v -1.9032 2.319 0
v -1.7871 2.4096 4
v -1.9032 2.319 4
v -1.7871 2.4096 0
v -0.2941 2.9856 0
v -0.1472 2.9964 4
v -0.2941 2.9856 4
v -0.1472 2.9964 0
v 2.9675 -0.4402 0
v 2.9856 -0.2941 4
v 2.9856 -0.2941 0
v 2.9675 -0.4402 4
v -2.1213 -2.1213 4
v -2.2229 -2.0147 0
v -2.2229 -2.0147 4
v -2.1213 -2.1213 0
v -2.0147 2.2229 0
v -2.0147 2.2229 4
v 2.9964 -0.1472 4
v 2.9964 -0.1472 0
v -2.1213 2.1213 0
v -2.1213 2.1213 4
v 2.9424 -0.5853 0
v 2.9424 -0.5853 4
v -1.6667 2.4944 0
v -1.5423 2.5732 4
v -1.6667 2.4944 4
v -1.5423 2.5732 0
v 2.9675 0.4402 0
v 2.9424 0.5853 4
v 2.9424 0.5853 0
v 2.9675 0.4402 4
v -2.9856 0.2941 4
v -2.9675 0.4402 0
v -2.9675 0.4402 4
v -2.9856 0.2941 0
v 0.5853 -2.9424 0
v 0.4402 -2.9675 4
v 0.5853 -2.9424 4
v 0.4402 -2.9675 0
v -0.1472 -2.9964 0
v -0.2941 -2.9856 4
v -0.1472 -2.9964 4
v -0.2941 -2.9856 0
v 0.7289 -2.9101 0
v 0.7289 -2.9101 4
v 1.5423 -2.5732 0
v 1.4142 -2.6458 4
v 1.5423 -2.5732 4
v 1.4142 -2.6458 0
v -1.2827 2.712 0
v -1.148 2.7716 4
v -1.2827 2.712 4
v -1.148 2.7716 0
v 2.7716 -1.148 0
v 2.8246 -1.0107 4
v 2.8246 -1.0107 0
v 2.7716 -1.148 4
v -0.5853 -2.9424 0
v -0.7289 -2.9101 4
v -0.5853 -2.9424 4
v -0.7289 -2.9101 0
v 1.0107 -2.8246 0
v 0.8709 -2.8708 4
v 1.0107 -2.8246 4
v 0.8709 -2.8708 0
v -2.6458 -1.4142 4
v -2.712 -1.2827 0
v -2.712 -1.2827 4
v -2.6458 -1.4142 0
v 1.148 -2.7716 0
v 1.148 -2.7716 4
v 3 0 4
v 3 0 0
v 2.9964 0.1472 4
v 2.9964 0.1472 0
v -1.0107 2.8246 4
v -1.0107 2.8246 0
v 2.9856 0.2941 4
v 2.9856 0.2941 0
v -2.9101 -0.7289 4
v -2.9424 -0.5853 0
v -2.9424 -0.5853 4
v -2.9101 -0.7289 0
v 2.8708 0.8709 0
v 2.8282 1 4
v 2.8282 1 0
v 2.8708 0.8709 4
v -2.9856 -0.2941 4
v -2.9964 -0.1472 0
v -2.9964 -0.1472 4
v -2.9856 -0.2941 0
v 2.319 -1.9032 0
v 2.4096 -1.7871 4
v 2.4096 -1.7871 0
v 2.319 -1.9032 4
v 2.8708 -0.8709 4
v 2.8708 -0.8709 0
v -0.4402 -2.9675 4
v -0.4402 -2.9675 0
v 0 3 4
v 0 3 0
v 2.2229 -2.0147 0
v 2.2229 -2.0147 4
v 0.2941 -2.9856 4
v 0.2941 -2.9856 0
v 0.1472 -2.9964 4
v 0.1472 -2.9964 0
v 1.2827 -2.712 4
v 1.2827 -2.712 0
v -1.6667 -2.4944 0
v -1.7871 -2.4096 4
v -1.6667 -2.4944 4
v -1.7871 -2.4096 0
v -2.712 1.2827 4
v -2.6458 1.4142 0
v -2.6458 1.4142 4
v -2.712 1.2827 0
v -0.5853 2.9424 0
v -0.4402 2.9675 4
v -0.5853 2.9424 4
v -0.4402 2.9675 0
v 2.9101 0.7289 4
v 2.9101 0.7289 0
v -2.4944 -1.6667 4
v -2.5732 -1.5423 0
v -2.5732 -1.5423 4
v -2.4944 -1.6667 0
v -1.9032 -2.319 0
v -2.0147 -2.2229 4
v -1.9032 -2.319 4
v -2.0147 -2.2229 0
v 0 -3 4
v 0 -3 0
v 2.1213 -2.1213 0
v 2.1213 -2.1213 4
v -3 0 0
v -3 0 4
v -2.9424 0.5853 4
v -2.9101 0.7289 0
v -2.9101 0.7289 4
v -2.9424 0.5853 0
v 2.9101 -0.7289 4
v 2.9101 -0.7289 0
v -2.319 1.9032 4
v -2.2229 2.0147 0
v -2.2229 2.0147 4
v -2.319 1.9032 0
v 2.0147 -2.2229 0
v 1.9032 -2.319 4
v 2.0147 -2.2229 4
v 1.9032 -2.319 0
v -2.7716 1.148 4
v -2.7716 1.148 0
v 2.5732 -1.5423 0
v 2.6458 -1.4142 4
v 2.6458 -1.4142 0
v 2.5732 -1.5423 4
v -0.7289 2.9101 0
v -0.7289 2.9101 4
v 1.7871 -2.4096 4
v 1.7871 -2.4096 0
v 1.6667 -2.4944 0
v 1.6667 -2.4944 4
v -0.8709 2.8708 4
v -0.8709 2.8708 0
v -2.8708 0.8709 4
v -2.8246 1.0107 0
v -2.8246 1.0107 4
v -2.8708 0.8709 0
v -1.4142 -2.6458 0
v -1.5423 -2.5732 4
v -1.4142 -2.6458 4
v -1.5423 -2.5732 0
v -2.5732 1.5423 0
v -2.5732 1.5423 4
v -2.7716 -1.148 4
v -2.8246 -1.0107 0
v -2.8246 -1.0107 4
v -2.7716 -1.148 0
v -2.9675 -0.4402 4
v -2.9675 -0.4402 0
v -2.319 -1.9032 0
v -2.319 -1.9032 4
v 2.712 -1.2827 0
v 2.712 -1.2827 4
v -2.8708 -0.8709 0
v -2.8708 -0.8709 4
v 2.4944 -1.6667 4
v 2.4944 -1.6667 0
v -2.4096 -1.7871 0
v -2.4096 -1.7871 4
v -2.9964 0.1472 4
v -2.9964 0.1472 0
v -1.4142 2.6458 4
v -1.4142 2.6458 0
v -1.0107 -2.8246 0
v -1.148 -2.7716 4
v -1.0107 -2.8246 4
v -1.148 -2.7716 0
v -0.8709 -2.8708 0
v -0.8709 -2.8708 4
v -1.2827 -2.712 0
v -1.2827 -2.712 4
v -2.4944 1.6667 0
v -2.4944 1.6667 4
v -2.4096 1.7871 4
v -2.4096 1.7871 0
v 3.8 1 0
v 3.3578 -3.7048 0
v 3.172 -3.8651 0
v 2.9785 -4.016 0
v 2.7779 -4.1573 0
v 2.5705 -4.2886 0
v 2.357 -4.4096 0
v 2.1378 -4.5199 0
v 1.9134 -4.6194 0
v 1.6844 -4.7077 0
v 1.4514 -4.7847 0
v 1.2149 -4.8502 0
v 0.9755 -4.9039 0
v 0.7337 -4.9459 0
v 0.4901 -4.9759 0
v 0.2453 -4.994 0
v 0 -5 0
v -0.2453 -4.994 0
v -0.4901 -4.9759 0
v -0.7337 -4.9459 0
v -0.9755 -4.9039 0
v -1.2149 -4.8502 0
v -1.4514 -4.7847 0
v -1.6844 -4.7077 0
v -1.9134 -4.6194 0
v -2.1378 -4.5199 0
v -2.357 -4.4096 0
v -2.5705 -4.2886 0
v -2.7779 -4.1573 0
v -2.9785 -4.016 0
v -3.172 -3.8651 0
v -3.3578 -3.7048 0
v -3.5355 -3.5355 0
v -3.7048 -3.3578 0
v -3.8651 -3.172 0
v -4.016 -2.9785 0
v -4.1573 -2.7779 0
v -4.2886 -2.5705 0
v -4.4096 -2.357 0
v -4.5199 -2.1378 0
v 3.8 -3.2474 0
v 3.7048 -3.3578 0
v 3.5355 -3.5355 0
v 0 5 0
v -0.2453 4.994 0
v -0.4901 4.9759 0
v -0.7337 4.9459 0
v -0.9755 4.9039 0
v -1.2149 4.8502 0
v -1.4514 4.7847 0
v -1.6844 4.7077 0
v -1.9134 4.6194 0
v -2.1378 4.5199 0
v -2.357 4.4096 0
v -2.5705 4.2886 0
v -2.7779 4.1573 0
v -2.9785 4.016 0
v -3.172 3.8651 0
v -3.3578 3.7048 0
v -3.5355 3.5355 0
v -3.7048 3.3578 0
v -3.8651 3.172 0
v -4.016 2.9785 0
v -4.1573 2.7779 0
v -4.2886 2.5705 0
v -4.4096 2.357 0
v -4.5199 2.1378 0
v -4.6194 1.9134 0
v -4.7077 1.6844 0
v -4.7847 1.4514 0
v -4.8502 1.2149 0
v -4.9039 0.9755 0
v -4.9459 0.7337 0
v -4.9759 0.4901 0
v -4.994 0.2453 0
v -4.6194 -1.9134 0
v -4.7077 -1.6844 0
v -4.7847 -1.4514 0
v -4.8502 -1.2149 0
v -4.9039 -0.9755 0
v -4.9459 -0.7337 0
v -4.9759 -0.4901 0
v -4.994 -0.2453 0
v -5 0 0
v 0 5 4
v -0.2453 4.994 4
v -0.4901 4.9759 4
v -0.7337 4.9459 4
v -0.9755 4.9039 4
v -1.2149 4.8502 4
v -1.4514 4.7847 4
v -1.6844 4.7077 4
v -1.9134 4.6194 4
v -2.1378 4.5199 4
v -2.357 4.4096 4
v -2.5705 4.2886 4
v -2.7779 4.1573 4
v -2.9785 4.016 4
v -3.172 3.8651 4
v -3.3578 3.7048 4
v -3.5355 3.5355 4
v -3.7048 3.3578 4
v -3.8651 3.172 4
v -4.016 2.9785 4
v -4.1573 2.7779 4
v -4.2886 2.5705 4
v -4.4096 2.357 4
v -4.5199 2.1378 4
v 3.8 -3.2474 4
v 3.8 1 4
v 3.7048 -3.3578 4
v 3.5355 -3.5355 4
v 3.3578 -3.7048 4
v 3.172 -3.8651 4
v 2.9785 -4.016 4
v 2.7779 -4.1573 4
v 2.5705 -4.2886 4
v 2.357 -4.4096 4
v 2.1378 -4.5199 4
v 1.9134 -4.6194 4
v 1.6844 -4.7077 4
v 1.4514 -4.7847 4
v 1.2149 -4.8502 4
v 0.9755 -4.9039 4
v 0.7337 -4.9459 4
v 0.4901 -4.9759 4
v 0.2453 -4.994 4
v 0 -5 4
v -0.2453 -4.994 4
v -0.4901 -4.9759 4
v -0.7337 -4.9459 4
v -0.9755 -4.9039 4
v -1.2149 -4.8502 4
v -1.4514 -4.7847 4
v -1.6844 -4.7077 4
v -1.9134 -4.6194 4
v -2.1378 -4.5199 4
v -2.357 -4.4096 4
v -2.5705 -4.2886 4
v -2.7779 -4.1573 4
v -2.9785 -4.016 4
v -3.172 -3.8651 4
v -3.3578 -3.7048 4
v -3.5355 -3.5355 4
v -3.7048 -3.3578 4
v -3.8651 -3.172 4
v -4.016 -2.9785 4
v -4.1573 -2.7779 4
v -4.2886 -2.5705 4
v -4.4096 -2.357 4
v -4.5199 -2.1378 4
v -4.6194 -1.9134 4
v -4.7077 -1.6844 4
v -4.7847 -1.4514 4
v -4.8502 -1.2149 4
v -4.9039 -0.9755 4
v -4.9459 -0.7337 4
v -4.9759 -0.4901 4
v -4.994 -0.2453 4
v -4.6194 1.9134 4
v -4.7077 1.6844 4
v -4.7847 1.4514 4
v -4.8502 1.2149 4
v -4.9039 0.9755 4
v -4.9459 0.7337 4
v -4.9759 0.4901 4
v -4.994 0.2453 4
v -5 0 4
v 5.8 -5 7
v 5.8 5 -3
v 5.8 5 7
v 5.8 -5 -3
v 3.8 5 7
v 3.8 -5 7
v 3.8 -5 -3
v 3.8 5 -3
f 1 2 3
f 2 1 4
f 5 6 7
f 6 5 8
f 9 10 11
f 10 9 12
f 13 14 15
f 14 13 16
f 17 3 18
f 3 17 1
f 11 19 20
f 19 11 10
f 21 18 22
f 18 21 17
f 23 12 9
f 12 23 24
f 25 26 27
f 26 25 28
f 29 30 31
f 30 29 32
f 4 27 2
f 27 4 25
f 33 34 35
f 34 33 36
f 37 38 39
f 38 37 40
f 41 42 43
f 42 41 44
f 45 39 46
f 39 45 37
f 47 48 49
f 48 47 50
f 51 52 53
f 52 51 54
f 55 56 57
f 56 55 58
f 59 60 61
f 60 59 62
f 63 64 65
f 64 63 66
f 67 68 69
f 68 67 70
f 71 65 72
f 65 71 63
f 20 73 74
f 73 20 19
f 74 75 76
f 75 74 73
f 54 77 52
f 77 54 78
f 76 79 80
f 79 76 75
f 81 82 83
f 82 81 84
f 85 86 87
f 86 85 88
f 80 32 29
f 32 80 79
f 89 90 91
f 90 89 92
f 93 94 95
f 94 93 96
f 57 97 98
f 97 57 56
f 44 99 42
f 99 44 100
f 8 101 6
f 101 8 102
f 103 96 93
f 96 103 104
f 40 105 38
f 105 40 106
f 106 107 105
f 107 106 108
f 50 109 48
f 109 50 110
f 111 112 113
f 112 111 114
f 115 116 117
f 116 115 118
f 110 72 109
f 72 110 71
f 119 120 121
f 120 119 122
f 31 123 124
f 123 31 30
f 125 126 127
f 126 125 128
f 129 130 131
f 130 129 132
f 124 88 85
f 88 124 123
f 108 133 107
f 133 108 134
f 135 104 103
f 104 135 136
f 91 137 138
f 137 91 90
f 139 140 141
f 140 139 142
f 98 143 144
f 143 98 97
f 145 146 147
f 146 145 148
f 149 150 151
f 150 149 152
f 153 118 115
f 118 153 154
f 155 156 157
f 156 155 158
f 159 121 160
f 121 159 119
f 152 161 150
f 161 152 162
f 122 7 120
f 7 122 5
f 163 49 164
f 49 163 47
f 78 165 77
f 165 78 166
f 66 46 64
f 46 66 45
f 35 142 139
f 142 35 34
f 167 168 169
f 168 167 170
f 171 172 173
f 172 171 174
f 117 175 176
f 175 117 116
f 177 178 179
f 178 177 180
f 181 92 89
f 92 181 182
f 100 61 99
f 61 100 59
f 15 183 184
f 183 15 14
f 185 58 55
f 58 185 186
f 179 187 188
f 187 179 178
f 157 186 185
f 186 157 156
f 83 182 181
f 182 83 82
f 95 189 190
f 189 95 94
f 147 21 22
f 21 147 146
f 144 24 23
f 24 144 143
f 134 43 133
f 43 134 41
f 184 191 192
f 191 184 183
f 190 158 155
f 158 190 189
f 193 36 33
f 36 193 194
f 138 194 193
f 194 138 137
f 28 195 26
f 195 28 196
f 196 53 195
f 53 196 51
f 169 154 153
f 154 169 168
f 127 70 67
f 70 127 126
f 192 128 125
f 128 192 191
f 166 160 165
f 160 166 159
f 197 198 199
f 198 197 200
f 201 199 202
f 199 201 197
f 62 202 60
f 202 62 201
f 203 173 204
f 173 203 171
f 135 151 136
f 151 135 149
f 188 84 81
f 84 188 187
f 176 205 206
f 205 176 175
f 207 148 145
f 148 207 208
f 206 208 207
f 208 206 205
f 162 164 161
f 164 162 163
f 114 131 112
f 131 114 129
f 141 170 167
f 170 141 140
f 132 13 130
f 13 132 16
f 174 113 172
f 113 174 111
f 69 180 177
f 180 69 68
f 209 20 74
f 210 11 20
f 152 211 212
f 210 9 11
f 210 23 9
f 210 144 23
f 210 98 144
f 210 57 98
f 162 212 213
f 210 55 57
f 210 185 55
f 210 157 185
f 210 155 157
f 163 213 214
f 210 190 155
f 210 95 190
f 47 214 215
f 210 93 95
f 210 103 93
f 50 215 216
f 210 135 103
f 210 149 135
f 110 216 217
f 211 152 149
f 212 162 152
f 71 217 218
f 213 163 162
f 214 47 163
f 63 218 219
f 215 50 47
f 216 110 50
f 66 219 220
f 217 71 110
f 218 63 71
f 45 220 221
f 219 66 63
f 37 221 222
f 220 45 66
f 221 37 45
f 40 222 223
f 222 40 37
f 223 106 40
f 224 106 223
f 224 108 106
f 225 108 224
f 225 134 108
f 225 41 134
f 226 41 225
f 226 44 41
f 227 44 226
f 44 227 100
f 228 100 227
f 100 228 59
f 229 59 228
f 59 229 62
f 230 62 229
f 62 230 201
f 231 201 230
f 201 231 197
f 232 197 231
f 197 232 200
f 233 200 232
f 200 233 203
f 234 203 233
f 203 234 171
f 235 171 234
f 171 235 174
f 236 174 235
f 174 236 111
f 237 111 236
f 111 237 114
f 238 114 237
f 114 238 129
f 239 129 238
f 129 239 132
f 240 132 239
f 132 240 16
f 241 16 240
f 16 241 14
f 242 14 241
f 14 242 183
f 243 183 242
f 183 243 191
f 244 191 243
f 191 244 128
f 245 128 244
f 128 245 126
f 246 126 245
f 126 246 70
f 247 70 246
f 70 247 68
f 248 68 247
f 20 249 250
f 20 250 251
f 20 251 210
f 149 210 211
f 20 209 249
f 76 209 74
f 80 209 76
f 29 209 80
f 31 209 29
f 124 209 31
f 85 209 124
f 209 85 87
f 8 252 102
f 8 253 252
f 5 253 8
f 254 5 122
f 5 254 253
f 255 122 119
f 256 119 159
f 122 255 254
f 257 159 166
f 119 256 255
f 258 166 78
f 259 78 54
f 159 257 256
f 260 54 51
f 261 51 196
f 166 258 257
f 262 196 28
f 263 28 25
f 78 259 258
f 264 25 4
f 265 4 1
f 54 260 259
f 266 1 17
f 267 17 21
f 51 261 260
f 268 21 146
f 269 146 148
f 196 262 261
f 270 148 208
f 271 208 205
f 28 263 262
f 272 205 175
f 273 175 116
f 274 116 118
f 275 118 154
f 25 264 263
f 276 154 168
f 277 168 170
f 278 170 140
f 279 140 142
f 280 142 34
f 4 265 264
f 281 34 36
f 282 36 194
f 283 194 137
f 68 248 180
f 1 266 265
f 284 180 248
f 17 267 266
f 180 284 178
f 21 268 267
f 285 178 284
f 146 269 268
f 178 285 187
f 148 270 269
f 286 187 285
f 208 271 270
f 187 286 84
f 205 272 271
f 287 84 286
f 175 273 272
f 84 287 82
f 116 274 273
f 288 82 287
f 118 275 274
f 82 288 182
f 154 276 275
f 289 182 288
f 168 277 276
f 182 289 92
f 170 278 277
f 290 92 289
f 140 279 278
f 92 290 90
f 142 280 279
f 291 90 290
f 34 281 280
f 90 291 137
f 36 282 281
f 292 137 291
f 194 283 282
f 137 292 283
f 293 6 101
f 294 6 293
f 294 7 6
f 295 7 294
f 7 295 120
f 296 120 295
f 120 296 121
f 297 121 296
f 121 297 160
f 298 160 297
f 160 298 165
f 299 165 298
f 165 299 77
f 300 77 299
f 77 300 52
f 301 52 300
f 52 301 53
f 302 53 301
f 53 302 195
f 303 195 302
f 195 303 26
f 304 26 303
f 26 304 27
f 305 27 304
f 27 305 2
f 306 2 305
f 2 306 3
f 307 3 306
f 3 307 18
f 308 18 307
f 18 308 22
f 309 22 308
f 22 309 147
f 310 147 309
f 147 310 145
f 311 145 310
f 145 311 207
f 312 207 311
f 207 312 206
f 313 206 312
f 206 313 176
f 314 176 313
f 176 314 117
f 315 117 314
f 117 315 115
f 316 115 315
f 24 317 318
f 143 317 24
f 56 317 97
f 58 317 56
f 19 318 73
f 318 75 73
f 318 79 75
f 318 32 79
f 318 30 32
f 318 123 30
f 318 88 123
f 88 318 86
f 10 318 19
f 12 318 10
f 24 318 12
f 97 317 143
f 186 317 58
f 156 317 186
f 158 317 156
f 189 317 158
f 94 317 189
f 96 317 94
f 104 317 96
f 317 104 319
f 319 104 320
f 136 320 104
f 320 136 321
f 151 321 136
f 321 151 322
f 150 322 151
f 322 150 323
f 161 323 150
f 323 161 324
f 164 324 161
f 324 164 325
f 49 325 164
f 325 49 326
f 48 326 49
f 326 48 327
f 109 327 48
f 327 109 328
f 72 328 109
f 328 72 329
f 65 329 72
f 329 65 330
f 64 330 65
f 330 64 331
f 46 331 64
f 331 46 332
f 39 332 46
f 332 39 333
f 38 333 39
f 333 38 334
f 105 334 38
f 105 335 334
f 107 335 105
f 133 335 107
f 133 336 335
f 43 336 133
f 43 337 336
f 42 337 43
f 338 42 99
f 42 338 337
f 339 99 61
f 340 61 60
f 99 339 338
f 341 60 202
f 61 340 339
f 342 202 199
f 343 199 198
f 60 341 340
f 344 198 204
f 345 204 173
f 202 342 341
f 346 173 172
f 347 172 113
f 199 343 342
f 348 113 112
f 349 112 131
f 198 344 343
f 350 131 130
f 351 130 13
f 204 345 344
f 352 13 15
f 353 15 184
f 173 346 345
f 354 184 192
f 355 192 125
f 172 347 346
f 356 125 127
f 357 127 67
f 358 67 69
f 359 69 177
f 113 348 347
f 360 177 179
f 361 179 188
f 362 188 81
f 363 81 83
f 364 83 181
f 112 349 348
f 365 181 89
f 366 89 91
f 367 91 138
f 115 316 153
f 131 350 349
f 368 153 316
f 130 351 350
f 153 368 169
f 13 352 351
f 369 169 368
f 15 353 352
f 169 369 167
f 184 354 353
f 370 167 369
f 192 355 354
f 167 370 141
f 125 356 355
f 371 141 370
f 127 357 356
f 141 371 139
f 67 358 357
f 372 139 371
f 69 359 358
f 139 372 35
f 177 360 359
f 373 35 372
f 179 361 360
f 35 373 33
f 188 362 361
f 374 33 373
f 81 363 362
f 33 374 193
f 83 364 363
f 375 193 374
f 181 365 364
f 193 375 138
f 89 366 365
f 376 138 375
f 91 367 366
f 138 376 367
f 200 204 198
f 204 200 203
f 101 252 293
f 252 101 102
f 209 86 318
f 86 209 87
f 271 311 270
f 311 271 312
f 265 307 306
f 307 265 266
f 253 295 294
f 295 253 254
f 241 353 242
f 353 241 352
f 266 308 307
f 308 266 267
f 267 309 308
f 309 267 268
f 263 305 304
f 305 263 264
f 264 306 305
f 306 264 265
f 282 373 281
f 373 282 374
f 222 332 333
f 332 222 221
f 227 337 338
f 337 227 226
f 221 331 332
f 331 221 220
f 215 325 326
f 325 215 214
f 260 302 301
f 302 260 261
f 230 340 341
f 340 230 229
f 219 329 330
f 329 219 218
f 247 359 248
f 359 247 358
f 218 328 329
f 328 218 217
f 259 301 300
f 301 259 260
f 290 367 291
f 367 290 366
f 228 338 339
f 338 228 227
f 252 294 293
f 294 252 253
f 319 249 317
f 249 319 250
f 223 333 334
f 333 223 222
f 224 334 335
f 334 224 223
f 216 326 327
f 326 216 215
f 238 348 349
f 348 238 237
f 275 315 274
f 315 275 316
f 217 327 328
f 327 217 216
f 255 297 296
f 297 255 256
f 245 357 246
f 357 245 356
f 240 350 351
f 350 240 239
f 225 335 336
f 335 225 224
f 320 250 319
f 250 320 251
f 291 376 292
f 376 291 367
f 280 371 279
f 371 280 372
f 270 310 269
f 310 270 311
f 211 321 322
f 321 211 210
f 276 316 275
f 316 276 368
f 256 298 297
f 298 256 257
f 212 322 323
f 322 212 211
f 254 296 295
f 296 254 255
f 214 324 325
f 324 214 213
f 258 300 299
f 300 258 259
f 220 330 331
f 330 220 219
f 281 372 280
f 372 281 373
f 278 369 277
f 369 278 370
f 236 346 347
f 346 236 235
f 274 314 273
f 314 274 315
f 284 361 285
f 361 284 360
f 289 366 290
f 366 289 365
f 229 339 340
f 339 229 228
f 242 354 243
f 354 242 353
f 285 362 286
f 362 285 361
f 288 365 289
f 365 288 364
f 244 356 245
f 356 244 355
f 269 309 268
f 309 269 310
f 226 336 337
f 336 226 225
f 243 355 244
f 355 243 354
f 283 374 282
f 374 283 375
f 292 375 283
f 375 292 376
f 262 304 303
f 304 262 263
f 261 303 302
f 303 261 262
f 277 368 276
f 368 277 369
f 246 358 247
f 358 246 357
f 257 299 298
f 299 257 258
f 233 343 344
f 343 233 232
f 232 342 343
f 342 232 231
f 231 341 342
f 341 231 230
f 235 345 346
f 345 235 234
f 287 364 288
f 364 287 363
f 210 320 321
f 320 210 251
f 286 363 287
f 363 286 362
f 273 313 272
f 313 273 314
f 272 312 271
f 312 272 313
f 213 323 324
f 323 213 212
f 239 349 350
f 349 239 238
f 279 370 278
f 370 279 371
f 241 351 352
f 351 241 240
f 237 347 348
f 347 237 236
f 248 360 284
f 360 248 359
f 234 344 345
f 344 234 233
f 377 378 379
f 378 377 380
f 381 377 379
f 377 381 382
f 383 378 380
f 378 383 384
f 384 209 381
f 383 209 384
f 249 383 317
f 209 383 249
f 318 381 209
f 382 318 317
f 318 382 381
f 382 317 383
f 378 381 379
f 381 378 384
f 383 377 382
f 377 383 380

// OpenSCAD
$fn=128;
difference() {
    cylinder(r=5, h=4);
    union() {
        cylinder(r=3, h=4);
        translate([0,1,0])
        cube([5, 5, 4]);
    }
}

color("blue")
translate([3.8,-5,-5 + 2])
cube([2, 10, 10]);
